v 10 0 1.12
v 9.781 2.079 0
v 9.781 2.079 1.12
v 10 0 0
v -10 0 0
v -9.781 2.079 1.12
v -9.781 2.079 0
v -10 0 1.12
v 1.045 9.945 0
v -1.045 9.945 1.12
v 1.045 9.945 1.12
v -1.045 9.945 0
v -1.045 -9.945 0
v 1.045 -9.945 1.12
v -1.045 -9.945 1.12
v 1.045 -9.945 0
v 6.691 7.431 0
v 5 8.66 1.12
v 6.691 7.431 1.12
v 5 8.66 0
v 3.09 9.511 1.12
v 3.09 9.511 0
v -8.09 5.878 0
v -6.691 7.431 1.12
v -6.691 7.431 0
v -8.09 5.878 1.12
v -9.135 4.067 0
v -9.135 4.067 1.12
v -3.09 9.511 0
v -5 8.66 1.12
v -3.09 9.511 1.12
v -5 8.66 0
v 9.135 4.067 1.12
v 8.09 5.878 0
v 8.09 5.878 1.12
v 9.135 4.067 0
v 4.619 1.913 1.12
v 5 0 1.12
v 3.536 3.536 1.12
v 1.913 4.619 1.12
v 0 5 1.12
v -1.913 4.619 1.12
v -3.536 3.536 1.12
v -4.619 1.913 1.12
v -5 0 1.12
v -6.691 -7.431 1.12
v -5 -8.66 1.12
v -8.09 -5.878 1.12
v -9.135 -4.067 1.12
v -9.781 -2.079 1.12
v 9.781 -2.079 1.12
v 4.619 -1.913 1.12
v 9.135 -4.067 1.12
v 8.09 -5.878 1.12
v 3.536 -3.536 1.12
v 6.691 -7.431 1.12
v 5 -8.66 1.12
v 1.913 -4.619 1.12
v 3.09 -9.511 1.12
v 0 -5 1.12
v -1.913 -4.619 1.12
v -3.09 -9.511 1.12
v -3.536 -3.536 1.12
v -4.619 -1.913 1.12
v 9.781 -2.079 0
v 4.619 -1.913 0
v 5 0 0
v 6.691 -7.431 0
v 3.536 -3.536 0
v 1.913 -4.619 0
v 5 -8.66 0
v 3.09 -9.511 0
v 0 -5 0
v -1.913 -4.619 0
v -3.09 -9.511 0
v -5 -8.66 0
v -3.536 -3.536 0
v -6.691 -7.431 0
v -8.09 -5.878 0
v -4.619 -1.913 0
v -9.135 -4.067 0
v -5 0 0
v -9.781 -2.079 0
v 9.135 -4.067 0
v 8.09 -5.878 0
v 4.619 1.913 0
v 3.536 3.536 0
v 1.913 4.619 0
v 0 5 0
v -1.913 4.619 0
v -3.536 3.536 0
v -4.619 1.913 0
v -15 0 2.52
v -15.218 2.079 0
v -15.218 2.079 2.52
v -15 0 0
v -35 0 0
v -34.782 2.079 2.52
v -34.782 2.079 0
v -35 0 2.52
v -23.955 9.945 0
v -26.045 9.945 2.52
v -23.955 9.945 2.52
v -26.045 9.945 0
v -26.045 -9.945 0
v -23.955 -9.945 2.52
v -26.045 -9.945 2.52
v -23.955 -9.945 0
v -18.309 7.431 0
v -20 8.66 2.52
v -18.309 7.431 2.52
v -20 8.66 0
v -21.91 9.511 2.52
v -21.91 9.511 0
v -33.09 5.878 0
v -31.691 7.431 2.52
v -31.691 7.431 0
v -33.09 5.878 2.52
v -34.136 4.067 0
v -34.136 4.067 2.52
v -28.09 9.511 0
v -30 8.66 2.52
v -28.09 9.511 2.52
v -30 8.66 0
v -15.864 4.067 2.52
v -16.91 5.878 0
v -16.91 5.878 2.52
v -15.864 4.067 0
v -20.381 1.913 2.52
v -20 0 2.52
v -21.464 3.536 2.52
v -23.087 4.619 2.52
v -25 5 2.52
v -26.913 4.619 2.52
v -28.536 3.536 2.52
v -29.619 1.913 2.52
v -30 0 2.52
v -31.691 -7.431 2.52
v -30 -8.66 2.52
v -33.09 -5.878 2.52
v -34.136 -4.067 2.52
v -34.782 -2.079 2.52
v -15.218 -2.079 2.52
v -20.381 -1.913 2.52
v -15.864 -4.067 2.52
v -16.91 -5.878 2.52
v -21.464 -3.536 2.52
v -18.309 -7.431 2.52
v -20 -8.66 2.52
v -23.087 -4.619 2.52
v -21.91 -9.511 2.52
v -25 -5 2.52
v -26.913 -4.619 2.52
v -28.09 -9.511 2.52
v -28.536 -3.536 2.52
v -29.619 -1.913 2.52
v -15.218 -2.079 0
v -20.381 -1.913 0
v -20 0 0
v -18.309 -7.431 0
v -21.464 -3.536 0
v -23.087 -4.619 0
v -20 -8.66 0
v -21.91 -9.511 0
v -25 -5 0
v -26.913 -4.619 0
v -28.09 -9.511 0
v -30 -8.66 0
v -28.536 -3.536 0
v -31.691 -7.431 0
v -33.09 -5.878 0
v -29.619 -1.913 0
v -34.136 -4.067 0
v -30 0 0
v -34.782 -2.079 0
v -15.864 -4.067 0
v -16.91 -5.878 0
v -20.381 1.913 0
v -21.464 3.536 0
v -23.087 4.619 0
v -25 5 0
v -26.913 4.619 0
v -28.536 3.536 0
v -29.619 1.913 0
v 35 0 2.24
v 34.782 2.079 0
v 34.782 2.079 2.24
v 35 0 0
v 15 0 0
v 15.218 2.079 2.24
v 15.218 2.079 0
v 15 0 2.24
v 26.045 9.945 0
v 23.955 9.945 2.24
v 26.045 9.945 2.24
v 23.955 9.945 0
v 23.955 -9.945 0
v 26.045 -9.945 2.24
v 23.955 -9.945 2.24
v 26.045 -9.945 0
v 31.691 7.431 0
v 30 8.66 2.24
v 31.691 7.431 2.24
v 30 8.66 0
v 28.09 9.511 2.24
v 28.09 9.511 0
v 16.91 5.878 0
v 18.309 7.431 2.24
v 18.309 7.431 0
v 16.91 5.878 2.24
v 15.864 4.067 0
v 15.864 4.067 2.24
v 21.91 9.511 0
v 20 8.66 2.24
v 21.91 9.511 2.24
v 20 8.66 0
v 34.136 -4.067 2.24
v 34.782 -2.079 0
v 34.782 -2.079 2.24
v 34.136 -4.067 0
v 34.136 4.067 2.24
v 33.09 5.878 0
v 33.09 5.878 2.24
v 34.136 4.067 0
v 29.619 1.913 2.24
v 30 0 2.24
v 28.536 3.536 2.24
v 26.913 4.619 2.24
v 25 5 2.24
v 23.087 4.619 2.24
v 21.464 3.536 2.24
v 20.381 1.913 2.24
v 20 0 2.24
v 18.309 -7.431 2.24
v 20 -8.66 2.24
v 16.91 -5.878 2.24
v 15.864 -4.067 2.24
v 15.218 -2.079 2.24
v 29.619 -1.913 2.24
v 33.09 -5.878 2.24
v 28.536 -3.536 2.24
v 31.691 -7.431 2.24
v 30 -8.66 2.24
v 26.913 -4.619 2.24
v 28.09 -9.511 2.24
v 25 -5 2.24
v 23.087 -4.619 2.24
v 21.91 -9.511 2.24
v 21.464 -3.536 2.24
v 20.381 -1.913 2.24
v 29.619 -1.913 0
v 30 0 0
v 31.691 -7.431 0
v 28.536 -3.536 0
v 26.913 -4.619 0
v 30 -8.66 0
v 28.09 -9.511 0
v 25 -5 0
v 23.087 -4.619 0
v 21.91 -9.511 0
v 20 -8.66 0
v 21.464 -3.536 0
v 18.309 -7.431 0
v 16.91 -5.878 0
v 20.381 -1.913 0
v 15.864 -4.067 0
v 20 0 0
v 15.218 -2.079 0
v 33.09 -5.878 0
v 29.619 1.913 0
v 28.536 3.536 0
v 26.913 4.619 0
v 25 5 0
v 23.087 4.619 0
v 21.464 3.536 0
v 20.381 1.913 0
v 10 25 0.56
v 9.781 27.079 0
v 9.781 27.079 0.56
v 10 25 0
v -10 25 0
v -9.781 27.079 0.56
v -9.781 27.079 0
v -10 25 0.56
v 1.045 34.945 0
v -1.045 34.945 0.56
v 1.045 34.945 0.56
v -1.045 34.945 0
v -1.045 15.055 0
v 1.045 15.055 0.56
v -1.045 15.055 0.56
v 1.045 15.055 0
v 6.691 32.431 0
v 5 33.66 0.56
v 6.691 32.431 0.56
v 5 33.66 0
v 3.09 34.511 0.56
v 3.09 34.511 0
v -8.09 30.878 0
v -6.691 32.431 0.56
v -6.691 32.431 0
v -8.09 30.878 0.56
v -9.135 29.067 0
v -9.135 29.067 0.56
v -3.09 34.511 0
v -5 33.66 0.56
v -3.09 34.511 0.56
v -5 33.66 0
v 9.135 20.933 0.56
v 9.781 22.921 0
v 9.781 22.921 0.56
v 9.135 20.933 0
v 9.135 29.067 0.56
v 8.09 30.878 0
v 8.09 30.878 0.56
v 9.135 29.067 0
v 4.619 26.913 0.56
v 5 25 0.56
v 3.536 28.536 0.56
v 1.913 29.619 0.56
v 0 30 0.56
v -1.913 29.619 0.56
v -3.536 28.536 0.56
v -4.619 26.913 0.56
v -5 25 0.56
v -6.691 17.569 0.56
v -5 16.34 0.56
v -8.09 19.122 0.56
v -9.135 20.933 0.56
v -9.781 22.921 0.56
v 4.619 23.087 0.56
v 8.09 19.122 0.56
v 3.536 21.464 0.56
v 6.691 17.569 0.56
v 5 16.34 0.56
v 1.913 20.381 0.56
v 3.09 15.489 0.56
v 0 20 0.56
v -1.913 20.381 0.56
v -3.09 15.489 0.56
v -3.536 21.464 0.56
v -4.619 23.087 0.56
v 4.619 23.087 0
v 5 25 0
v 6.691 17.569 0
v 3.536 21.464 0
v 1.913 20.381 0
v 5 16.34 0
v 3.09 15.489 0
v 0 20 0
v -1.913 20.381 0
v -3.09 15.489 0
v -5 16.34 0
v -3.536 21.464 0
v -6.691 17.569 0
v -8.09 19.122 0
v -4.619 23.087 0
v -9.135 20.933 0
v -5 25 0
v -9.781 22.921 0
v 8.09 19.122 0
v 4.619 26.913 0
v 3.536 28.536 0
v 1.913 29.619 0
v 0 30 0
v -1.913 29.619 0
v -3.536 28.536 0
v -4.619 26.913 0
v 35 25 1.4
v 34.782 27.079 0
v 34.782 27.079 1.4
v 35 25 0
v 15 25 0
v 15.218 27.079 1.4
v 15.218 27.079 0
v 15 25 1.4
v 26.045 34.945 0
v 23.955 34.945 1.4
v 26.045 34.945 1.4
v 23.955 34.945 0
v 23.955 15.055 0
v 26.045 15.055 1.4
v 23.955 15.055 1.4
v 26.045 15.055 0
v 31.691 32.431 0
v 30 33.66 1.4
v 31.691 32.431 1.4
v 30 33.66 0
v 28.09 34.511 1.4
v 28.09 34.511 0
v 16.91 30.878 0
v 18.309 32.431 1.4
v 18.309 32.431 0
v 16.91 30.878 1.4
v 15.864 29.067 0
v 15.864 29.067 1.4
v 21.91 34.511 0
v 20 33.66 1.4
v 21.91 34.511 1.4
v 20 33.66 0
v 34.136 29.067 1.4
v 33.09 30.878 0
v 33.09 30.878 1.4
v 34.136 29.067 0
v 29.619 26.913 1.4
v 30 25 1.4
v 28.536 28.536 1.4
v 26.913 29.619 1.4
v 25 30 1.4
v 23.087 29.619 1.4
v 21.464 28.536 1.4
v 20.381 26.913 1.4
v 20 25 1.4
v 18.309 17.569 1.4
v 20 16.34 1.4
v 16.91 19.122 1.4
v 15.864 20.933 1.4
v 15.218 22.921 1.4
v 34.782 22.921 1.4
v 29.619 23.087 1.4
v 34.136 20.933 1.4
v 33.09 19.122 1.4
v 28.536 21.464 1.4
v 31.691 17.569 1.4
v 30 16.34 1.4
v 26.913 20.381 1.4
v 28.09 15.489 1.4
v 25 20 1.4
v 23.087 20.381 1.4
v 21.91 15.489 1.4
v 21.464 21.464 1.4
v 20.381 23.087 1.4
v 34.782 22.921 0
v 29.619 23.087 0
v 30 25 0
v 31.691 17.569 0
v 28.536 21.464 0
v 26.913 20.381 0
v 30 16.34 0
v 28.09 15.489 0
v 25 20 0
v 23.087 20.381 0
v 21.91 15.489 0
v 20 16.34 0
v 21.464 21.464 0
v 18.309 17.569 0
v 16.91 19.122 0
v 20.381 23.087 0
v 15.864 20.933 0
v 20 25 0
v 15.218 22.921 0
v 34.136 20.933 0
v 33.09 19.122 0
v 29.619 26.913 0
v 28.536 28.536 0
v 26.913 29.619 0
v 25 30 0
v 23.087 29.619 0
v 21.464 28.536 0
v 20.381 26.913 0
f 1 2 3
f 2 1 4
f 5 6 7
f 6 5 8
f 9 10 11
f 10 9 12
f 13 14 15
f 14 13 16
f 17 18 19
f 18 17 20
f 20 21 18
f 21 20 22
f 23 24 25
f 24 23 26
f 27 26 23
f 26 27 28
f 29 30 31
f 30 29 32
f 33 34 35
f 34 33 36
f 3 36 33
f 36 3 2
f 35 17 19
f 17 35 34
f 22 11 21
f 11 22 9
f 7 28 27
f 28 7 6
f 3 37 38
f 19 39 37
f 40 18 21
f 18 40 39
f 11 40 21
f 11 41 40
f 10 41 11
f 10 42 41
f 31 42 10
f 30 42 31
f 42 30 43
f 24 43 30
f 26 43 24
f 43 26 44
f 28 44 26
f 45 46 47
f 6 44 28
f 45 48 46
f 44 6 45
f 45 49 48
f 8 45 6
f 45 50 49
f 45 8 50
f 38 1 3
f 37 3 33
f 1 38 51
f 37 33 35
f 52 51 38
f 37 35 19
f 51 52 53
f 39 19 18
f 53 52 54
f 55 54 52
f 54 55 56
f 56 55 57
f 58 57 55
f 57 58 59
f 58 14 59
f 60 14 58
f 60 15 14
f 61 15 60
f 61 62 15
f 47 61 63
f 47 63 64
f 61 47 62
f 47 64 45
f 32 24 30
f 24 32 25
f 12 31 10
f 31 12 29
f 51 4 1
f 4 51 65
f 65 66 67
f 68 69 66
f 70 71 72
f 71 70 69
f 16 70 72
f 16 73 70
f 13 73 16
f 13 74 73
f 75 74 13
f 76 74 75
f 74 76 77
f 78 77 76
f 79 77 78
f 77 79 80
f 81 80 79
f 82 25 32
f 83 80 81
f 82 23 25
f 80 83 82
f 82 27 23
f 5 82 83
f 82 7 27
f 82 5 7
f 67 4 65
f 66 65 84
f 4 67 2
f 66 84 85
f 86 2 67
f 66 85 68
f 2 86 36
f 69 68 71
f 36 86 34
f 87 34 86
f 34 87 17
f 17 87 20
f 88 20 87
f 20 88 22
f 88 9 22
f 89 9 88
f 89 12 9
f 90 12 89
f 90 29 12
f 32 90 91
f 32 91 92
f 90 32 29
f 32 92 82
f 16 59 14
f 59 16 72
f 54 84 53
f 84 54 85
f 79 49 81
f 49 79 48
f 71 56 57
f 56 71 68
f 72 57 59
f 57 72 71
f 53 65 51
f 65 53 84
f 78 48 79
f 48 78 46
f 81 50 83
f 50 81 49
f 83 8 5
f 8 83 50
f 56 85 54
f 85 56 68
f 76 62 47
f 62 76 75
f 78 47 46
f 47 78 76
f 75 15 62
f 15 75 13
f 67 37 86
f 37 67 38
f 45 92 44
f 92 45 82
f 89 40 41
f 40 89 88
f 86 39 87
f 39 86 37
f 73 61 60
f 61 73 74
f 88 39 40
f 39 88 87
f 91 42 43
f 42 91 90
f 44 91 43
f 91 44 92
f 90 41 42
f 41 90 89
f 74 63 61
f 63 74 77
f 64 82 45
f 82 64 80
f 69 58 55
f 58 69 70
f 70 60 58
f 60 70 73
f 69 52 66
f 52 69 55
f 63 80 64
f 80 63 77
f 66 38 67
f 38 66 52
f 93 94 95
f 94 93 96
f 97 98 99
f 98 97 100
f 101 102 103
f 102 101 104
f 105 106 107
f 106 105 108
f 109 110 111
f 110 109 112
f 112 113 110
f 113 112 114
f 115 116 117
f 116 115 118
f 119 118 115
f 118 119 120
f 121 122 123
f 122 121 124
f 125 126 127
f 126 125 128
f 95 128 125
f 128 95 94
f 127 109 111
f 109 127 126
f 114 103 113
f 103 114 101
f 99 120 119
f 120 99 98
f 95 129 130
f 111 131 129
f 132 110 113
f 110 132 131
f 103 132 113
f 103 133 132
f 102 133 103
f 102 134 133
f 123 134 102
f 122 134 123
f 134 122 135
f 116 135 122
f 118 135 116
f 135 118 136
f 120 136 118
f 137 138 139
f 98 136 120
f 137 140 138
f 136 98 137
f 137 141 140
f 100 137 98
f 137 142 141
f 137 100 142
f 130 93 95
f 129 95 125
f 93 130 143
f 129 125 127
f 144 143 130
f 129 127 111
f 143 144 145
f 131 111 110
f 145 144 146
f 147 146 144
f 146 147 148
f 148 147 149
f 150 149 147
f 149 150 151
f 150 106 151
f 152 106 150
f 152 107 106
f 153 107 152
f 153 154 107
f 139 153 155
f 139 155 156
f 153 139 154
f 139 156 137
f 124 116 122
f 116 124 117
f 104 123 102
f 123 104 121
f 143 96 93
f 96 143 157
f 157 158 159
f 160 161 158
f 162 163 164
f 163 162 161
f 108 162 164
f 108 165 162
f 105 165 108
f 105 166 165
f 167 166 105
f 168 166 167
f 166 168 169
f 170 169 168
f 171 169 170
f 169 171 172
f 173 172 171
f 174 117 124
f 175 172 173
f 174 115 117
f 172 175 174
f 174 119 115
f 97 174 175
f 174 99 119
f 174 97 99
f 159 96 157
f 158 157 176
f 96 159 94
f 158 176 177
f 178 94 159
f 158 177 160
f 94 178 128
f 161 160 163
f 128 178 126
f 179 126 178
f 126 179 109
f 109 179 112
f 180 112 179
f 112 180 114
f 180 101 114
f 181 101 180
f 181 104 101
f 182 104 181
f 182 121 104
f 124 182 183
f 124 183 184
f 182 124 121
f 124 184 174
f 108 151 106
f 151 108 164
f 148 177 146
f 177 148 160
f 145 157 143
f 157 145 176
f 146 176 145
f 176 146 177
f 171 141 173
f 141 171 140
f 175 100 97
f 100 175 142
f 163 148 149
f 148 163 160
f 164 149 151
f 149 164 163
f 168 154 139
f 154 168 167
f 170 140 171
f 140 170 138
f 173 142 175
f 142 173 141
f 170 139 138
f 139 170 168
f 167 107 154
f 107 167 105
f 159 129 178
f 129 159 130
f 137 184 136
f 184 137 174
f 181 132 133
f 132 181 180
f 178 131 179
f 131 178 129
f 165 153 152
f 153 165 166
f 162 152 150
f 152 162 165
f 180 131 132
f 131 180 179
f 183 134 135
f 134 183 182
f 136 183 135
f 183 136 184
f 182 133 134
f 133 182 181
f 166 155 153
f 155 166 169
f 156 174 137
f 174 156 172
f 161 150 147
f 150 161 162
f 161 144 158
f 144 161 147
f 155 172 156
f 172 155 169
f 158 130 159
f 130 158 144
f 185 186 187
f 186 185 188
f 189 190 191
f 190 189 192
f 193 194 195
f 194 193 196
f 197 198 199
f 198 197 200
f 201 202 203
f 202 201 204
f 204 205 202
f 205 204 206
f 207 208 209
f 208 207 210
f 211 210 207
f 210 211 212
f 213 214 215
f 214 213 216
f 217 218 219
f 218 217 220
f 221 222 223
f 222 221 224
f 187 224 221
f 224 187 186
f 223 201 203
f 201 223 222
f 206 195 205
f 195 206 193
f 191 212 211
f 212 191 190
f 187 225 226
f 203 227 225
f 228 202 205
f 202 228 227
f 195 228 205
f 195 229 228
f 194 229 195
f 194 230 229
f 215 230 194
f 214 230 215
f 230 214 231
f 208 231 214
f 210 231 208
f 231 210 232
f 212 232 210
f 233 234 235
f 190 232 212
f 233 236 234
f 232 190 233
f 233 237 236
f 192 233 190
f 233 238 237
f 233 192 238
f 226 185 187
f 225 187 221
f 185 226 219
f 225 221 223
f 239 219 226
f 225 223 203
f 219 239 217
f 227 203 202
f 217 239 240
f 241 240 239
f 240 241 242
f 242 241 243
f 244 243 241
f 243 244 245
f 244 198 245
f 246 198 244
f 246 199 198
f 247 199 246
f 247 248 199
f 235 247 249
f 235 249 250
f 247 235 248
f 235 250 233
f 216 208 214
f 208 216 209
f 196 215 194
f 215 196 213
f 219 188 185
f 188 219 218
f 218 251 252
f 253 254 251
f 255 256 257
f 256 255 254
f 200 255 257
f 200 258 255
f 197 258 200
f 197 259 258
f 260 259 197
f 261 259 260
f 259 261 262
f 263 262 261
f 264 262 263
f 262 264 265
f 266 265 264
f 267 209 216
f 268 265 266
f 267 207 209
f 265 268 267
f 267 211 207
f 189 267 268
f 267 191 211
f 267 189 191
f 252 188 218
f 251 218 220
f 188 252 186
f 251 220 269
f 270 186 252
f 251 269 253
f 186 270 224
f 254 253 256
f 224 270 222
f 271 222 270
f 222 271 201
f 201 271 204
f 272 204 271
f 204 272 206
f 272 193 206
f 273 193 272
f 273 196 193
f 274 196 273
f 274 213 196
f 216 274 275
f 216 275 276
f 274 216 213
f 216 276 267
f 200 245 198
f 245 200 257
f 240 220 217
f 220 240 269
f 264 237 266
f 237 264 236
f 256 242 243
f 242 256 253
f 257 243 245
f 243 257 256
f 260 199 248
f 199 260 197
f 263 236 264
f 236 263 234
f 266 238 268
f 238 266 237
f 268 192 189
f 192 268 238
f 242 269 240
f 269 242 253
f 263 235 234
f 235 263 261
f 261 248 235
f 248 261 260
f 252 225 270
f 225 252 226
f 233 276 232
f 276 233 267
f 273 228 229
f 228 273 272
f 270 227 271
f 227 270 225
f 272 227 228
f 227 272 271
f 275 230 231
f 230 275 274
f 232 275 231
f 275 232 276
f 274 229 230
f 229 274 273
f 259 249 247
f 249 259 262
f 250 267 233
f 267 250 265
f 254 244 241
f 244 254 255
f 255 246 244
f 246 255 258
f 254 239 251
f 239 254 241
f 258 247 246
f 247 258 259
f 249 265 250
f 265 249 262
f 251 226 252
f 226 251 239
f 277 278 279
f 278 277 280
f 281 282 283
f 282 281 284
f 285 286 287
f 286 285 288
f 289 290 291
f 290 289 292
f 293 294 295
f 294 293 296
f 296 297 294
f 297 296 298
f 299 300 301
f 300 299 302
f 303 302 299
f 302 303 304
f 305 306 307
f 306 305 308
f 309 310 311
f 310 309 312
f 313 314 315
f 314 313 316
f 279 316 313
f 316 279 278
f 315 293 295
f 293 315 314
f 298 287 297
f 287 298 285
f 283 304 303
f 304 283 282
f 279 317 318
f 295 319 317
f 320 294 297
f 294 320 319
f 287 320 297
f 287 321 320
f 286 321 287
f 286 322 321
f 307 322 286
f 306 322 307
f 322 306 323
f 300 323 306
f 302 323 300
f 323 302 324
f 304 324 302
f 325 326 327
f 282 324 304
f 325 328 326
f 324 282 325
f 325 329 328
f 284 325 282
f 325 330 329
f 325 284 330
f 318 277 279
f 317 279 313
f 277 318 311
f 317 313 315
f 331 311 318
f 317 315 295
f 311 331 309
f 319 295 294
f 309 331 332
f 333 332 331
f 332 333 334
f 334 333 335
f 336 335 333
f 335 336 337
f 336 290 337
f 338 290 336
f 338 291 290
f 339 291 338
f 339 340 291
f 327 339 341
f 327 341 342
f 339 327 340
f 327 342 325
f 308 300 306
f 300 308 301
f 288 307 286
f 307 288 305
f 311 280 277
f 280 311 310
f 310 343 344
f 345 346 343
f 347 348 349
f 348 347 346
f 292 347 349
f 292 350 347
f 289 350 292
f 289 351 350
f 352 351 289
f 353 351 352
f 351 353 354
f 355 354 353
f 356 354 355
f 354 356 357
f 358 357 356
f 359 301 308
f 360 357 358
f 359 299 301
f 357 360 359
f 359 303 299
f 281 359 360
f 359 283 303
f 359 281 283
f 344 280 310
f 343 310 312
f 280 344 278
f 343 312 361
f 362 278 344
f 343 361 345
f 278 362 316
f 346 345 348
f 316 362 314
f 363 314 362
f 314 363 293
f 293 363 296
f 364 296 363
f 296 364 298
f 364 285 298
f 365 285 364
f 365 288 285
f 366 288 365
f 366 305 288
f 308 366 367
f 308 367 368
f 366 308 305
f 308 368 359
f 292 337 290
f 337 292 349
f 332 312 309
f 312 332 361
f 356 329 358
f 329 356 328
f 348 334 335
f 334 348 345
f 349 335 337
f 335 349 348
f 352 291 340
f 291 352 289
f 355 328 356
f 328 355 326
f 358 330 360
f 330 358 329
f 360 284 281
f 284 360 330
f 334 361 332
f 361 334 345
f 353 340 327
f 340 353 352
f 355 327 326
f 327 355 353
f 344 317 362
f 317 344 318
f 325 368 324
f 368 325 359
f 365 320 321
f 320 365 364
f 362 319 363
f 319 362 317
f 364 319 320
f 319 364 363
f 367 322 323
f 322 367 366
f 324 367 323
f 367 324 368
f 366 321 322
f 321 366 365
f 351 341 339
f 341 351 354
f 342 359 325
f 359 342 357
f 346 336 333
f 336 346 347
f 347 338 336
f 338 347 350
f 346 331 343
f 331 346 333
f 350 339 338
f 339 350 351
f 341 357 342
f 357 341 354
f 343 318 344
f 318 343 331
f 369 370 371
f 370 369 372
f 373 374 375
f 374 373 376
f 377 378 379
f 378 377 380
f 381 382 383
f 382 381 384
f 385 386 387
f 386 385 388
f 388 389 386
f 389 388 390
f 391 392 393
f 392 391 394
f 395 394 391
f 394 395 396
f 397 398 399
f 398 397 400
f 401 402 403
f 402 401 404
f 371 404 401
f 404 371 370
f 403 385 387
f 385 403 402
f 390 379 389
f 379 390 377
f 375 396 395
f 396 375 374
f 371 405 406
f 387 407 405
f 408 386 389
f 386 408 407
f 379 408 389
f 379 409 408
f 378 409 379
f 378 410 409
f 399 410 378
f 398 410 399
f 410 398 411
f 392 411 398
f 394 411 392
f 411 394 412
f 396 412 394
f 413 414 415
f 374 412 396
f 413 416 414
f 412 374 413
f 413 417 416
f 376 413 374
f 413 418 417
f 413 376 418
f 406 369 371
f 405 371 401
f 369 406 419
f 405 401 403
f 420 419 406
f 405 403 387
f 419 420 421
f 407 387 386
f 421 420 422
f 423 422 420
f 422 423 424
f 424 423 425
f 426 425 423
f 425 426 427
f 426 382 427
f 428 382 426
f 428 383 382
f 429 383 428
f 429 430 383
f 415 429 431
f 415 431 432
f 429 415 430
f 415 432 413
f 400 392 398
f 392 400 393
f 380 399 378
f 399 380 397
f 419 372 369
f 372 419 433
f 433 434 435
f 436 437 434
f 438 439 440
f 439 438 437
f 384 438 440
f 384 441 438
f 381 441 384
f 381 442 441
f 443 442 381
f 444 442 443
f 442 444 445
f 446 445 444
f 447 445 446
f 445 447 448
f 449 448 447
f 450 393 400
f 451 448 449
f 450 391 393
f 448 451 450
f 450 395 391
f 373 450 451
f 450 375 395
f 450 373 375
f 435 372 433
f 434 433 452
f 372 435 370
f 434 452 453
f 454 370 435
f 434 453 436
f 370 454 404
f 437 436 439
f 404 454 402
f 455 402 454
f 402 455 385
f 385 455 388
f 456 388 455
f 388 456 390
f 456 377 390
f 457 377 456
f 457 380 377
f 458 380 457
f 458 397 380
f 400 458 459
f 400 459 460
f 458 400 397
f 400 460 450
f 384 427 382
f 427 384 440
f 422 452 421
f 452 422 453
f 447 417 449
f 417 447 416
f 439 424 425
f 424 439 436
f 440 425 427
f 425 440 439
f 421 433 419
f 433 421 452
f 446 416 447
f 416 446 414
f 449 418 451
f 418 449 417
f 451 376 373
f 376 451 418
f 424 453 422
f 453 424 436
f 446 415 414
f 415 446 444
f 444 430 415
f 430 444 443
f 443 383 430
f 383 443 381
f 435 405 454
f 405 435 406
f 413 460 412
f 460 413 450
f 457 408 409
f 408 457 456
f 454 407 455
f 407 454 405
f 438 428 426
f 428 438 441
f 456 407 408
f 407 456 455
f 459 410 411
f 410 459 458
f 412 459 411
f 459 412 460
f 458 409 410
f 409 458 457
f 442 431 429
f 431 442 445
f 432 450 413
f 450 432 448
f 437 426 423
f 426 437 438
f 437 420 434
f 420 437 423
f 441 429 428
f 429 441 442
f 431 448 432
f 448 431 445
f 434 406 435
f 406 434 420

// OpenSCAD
cilindro(1.12);

translate([-25,0,0])
cilindro(2.52);

translate([25,0,0])
cilindro(2.24);

translate([0,25,0])
cilindro(0.56);

translate([25,25,0])
cilindro(1.4);

module cilindro(altura) {

difference() {
cylinder(h=altura, r=20/2);

translate([0,0,-0.5])
cylinder(h=altura+2, r=10/2);
}

}
